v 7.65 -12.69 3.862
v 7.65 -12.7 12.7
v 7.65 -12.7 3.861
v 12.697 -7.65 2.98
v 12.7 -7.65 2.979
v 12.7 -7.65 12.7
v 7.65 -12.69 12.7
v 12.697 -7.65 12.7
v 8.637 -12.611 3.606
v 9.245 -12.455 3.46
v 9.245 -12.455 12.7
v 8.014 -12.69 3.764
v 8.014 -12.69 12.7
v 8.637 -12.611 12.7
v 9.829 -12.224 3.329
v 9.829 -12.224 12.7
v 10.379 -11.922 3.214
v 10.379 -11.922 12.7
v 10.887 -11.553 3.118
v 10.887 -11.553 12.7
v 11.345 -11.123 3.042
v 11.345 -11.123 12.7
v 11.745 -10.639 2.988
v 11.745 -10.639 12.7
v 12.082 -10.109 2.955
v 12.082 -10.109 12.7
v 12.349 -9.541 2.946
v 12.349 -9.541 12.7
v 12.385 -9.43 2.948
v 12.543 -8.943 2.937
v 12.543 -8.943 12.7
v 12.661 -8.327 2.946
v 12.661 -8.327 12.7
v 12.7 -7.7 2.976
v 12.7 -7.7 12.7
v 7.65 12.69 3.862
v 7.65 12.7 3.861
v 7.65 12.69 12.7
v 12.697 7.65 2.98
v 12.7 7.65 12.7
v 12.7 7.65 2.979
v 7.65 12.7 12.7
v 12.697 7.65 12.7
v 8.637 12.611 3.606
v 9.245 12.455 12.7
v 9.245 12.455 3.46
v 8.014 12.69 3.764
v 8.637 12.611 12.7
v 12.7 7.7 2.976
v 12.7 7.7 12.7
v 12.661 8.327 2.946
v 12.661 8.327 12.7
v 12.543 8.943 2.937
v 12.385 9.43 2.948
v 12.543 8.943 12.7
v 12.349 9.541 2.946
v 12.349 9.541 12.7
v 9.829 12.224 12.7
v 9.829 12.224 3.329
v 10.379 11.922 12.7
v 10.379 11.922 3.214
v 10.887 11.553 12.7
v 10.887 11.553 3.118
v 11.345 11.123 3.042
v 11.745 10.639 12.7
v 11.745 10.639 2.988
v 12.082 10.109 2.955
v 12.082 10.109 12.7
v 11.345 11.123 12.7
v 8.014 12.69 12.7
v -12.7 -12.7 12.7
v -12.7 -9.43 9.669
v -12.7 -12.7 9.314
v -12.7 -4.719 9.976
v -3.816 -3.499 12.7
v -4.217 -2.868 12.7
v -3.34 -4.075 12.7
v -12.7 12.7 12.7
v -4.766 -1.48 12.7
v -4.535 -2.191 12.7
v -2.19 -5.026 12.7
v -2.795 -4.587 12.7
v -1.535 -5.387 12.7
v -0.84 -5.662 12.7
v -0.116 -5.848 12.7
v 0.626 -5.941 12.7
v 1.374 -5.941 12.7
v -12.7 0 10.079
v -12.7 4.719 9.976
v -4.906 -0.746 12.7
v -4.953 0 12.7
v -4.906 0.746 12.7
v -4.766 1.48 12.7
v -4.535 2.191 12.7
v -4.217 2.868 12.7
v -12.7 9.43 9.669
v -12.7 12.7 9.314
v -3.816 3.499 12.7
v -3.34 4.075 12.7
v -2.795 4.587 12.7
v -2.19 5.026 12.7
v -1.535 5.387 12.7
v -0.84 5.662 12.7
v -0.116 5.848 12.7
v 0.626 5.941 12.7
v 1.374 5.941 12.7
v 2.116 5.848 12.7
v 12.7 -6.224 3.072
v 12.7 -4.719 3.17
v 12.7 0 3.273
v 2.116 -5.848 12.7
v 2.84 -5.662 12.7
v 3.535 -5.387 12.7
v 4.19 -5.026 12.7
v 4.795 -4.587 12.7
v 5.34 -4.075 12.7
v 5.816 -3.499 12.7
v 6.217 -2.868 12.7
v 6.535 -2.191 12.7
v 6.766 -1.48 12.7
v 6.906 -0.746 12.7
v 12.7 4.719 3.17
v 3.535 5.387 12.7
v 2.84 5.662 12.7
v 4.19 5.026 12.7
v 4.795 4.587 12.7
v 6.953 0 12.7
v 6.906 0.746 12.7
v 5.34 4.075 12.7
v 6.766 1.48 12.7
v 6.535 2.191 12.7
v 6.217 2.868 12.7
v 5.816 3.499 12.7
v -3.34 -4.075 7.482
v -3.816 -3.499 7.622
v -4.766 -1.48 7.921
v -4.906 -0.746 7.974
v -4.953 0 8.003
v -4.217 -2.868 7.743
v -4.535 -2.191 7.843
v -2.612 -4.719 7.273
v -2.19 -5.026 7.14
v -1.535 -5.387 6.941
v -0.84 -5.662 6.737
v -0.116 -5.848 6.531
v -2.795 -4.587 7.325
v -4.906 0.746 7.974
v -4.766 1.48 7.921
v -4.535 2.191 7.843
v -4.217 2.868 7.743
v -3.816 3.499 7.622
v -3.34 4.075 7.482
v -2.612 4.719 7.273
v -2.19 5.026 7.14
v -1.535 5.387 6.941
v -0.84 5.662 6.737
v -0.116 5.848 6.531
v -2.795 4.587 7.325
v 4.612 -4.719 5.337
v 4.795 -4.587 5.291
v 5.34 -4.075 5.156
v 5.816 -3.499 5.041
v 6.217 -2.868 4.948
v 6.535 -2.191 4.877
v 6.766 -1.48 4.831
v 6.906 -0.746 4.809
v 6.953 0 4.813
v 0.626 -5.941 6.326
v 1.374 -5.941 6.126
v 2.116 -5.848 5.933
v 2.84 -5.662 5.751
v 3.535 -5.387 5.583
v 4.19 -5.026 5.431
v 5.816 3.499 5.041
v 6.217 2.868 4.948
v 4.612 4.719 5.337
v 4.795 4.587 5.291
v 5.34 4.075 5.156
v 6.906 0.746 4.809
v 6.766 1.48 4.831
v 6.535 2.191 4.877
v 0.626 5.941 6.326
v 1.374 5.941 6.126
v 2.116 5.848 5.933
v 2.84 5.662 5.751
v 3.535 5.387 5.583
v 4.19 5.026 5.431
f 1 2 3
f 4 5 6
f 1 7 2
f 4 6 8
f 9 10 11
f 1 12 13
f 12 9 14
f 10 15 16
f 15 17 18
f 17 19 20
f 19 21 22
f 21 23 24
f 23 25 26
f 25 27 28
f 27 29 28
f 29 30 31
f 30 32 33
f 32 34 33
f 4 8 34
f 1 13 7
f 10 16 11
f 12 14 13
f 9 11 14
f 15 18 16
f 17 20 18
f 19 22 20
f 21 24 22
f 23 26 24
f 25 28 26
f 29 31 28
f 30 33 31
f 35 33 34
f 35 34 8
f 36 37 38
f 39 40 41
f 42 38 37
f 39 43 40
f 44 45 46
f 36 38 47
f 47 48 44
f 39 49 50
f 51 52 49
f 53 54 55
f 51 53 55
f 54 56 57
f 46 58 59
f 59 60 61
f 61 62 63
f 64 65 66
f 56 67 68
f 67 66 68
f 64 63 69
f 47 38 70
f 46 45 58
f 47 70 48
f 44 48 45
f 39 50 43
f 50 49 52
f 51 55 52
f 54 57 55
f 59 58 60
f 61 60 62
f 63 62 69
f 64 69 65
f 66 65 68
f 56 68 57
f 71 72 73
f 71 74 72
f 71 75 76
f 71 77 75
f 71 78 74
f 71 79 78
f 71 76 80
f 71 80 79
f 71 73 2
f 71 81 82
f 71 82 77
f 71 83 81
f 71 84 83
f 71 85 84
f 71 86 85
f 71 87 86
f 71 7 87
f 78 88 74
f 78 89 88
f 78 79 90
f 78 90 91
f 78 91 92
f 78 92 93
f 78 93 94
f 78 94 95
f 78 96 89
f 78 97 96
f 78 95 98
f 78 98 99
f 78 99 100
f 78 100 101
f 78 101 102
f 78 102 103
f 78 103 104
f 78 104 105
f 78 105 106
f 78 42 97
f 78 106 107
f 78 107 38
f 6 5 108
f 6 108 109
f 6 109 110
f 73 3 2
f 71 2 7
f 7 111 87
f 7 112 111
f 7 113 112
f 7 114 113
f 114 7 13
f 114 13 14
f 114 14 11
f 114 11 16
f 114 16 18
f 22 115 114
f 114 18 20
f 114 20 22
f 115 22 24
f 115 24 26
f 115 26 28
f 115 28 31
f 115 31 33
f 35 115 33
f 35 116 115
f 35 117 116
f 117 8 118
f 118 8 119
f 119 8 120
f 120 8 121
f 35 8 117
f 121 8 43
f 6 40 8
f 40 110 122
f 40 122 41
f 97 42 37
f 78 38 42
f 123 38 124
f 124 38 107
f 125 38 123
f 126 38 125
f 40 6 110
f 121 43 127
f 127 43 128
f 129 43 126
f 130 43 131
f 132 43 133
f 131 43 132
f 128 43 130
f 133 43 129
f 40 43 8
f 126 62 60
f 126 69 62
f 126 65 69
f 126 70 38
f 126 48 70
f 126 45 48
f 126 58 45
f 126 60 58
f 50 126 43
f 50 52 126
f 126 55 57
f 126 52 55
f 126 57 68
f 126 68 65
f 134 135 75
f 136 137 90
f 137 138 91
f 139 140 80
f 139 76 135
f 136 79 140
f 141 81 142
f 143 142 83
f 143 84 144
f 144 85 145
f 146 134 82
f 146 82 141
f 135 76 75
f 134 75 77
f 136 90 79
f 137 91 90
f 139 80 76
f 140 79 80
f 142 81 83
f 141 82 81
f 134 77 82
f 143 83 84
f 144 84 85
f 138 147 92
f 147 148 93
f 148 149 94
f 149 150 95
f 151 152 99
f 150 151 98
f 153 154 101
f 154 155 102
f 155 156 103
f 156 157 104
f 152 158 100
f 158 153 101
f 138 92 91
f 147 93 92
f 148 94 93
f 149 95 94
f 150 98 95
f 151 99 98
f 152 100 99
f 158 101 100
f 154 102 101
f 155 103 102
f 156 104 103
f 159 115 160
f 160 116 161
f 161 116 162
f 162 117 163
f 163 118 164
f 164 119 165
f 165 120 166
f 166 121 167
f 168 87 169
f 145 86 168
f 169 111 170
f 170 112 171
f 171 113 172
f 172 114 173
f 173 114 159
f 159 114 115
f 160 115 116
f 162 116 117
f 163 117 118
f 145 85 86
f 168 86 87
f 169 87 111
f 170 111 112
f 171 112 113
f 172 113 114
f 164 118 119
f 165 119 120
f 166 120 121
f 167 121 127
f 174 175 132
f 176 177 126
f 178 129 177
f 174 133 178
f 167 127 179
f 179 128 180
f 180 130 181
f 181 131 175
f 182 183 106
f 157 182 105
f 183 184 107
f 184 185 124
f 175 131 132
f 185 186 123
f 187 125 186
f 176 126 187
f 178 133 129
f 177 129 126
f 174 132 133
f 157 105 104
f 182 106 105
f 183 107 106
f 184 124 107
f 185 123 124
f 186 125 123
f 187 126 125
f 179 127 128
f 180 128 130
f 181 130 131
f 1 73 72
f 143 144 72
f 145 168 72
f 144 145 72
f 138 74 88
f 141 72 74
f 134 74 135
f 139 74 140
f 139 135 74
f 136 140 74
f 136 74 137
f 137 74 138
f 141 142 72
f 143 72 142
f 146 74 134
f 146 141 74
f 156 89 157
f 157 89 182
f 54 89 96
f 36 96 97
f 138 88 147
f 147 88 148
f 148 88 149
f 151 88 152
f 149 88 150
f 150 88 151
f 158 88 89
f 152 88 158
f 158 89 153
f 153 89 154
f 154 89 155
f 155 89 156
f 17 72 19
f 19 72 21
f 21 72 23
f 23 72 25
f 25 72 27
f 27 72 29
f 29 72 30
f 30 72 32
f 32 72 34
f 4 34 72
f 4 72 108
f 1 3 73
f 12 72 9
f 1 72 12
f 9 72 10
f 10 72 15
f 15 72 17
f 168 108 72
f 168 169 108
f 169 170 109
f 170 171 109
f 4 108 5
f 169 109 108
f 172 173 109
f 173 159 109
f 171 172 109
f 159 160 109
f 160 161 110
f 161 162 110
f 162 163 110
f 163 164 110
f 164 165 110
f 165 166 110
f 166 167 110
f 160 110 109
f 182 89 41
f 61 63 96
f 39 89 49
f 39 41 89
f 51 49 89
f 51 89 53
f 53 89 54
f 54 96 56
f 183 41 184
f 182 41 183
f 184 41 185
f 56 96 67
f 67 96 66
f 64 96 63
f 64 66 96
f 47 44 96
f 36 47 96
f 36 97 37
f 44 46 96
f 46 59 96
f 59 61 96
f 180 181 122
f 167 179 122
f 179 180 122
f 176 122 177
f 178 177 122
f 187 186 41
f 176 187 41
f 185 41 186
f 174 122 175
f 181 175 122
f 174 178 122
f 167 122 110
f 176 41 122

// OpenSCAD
$fn = 50;
angle = 15.0;
width = 1 * 25.4;
corner_radius = 5;


difference() {
  cube([25.4, 25.4, 25.4], center=true);
  
  translate([1, 0, 0]) cylinder(d=15/32*25.4, h=25.6, center=true);

  //translate([0, 0, -6]) rotate([0, 15, 0]) cube([50, 25.6, 25.4], center=true);
  translate([0, 0, -110]) rotate([0, 15+90, 0]) cylinder(h=250, d=225.4, center=true, $fn=150);
  
  for (y = [-1, 1])
  translate([width/2 - corner_radius, y*(width/2 - corner_radius), 0])
  difference() {
    translate([corner_radius/2, y*corner_radius/2, -0.1])
    cube([corner_radius+0.1, corner_radius+0.1, 25.6], center=true);
    cylinder(r = corner_radius, h=25.6, center=true);
  }

}
